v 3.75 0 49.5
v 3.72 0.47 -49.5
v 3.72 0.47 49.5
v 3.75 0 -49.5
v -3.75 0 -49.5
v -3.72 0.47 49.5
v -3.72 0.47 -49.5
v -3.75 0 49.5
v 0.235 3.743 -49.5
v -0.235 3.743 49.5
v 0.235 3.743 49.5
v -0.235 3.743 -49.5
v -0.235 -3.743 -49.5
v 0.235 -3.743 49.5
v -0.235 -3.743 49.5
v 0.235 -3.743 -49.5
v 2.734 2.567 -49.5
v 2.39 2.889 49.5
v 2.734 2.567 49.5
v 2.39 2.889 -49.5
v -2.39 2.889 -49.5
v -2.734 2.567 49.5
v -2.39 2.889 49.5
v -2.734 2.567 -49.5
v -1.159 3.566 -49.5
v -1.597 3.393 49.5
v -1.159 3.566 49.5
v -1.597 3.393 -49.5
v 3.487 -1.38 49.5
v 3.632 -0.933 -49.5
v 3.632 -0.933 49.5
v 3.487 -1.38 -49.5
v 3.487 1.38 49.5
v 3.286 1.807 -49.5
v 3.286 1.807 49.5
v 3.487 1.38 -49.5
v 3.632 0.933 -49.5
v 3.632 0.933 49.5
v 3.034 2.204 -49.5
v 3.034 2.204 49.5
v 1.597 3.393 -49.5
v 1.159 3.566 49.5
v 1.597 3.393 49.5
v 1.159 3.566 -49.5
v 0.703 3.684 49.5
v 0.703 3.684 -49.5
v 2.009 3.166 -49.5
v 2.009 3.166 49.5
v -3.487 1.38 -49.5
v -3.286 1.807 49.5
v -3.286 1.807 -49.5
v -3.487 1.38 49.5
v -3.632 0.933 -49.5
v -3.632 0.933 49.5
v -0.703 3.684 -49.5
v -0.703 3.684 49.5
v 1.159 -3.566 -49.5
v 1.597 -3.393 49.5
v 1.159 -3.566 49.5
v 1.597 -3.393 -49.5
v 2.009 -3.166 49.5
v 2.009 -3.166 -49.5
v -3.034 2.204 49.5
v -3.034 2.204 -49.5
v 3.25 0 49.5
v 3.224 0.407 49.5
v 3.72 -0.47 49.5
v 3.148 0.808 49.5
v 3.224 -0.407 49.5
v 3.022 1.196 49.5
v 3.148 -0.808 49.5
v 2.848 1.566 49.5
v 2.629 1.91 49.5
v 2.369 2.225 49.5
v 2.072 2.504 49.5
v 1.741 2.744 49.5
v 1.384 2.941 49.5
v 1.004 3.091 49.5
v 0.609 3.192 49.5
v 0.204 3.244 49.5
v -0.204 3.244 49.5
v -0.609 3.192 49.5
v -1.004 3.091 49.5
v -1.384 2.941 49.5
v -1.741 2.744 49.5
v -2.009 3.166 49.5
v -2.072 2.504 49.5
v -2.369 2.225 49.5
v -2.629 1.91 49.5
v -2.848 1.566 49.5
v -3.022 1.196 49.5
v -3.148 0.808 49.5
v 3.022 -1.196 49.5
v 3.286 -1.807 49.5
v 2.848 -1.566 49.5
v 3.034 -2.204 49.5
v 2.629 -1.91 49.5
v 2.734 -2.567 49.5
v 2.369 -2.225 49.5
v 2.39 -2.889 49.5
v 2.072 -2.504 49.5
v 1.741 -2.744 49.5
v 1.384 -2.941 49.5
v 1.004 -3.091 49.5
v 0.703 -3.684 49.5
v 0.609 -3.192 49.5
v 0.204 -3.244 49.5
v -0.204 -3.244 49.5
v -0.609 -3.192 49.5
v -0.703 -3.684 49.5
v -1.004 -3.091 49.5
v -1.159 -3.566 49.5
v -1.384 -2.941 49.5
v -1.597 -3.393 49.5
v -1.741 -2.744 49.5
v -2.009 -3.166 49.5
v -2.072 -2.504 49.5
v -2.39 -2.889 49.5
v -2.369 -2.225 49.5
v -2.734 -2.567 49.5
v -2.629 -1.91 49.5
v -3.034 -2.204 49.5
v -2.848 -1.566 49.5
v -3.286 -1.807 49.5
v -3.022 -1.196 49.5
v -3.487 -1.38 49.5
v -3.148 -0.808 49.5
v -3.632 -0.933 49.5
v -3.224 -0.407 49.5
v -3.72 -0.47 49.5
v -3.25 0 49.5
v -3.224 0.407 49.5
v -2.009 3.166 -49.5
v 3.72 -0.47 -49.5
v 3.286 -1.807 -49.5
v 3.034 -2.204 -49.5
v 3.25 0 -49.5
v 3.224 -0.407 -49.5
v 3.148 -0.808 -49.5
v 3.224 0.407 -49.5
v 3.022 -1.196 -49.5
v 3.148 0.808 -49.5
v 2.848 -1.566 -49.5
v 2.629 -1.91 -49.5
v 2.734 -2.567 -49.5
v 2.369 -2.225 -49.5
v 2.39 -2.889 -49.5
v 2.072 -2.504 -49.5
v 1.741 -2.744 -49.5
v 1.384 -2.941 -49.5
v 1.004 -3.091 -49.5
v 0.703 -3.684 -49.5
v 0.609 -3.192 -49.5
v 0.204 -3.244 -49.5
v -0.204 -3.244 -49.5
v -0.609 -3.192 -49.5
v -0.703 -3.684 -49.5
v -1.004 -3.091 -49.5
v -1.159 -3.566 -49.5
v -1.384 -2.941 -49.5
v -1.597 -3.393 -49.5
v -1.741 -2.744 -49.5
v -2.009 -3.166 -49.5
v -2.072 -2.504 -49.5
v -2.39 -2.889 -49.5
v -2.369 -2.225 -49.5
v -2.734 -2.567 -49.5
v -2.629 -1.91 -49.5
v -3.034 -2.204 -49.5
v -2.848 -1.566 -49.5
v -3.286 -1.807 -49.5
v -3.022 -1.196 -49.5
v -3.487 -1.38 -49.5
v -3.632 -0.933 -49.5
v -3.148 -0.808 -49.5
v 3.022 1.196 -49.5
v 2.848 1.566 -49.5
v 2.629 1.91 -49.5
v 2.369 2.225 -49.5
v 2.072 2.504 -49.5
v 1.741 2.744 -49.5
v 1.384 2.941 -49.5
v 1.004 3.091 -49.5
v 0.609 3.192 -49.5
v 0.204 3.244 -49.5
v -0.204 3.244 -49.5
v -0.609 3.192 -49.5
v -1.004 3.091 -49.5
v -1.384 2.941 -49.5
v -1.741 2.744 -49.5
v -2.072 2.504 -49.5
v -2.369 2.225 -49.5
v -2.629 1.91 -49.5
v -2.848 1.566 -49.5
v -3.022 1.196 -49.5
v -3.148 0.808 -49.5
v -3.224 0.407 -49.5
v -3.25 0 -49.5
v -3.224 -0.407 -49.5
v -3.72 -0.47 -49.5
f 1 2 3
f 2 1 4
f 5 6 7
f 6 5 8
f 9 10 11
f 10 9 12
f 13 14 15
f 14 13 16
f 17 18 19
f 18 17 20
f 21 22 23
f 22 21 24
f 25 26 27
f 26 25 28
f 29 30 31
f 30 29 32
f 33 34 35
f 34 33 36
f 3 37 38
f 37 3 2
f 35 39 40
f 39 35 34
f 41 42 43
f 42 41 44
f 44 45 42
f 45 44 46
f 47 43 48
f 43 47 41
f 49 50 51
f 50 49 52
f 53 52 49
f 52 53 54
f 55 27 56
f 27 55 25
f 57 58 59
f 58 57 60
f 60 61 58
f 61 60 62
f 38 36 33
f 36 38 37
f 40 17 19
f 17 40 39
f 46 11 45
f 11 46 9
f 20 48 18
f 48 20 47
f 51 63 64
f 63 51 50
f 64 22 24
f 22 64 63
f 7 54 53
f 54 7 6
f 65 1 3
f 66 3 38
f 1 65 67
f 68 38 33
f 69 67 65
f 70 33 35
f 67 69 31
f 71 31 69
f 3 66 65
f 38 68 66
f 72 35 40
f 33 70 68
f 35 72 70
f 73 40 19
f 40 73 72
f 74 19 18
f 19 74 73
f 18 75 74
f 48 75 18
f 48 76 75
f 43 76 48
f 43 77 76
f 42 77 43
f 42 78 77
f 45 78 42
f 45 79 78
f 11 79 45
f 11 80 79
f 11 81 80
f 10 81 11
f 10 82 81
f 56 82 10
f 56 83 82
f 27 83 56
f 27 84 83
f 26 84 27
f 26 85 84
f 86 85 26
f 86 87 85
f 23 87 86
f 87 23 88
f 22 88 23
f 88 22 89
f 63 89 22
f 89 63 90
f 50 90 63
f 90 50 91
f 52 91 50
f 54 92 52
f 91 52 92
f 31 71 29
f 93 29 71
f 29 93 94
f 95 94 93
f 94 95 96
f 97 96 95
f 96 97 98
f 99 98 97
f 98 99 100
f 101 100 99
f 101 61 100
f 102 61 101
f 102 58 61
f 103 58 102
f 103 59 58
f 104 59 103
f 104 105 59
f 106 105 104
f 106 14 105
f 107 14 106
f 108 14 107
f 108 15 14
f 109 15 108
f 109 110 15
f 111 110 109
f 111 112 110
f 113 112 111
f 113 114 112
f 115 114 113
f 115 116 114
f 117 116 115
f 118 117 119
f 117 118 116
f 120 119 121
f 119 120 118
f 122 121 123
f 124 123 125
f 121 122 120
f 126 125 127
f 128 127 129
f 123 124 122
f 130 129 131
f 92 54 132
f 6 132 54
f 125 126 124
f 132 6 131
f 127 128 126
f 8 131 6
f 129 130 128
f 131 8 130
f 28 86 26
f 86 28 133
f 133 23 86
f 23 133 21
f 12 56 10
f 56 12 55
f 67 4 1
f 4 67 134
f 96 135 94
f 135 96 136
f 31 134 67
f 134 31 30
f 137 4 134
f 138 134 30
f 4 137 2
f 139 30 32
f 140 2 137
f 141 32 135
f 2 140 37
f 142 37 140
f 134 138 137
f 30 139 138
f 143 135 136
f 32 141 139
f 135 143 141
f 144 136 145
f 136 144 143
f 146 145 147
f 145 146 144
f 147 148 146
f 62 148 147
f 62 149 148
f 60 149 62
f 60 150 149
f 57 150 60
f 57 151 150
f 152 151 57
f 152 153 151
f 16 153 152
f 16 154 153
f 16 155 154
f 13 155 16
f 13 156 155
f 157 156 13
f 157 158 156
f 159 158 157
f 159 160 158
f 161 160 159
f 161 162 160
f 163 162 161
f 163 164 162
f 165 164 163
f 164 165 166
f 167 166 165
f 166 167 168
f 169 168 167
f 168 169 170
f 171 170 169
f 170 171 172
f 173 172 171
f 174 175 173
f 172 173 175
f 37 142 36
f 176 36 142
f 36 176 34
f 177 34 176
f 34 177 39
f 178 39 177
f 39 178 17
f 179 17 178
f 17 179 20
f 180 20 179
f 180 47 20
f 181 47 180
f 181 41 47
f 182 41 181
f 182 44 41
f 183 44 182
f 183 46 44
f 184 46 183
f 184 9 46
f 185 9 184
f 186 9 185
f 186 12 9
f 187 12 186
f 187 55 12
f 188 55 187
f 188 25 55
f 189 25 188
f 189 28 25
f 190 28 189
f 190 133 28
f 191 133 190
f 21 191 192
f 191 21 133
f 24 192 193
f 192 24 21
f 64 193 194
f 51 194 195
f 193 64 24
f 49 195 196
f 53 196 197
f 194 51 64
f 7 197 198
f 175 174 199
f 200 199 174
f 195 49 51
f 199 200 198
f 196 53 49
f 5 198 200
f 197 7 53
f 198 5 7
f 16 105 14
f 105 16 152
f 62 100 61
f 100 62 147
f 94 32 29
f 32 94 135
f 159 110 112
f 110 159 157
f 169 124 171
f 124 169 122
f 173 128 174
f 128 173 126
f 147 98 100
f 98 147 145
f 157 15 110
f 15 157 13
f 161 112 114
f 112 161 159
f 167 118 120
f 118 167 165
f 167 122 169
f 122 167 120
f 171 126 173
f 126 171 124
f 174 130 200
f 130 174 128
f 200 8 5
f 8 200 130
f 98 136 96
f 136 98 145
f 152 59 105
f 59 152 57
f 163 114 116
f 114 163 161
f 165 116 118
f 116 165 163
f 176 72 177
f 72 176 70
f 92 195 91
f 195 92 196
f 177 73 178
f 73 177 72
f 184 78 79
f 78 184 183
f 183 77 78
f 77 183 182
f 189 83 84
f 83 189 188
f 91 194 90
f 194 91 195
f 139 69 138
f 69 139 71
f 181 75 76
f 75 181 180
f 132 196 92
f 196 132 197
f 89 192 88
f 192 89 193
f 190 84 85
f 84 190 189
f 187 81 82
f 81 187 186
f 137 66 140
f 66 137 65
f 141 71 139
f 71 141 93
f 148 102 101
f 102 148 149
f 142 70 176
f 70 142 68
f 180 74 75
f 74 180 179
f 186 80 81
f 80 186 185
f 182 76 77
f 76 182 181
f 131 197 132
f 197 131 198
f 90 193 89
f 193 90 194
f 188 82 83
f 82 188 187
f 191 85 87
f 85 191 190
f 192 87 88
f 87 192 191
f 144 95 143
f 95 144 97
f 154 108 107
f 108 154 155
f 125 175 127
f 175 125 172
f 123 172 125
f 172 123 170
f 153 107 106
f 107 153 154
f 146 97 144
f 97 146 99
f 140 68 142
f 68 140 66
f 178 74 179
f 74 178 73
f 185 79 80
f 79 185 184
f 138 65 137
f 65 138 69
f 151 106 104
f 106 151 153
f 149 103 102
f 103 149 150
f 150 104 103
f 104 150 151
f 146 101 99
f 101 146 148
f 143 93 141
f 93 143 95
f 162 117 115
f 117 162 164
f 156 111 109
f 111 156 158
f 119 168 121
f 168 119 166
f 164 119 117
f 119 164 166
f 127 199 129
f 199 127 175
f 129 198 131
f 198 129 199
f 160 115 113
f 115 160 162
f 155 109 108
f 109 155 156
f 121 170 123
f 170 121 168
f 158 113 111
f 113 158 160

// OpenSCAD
$fn = 50;


difference() {
	union() {
		translate(v = [0, 0, -49.5000000000]) {
			cylinder(h = 99, r = 3.7500000000);
		}
	}
	union() {
		translate(v = [0, 0, -100.0000000000]) {
			cylinder(h = 200, r = 3.2500000000);
		}
	}
}
